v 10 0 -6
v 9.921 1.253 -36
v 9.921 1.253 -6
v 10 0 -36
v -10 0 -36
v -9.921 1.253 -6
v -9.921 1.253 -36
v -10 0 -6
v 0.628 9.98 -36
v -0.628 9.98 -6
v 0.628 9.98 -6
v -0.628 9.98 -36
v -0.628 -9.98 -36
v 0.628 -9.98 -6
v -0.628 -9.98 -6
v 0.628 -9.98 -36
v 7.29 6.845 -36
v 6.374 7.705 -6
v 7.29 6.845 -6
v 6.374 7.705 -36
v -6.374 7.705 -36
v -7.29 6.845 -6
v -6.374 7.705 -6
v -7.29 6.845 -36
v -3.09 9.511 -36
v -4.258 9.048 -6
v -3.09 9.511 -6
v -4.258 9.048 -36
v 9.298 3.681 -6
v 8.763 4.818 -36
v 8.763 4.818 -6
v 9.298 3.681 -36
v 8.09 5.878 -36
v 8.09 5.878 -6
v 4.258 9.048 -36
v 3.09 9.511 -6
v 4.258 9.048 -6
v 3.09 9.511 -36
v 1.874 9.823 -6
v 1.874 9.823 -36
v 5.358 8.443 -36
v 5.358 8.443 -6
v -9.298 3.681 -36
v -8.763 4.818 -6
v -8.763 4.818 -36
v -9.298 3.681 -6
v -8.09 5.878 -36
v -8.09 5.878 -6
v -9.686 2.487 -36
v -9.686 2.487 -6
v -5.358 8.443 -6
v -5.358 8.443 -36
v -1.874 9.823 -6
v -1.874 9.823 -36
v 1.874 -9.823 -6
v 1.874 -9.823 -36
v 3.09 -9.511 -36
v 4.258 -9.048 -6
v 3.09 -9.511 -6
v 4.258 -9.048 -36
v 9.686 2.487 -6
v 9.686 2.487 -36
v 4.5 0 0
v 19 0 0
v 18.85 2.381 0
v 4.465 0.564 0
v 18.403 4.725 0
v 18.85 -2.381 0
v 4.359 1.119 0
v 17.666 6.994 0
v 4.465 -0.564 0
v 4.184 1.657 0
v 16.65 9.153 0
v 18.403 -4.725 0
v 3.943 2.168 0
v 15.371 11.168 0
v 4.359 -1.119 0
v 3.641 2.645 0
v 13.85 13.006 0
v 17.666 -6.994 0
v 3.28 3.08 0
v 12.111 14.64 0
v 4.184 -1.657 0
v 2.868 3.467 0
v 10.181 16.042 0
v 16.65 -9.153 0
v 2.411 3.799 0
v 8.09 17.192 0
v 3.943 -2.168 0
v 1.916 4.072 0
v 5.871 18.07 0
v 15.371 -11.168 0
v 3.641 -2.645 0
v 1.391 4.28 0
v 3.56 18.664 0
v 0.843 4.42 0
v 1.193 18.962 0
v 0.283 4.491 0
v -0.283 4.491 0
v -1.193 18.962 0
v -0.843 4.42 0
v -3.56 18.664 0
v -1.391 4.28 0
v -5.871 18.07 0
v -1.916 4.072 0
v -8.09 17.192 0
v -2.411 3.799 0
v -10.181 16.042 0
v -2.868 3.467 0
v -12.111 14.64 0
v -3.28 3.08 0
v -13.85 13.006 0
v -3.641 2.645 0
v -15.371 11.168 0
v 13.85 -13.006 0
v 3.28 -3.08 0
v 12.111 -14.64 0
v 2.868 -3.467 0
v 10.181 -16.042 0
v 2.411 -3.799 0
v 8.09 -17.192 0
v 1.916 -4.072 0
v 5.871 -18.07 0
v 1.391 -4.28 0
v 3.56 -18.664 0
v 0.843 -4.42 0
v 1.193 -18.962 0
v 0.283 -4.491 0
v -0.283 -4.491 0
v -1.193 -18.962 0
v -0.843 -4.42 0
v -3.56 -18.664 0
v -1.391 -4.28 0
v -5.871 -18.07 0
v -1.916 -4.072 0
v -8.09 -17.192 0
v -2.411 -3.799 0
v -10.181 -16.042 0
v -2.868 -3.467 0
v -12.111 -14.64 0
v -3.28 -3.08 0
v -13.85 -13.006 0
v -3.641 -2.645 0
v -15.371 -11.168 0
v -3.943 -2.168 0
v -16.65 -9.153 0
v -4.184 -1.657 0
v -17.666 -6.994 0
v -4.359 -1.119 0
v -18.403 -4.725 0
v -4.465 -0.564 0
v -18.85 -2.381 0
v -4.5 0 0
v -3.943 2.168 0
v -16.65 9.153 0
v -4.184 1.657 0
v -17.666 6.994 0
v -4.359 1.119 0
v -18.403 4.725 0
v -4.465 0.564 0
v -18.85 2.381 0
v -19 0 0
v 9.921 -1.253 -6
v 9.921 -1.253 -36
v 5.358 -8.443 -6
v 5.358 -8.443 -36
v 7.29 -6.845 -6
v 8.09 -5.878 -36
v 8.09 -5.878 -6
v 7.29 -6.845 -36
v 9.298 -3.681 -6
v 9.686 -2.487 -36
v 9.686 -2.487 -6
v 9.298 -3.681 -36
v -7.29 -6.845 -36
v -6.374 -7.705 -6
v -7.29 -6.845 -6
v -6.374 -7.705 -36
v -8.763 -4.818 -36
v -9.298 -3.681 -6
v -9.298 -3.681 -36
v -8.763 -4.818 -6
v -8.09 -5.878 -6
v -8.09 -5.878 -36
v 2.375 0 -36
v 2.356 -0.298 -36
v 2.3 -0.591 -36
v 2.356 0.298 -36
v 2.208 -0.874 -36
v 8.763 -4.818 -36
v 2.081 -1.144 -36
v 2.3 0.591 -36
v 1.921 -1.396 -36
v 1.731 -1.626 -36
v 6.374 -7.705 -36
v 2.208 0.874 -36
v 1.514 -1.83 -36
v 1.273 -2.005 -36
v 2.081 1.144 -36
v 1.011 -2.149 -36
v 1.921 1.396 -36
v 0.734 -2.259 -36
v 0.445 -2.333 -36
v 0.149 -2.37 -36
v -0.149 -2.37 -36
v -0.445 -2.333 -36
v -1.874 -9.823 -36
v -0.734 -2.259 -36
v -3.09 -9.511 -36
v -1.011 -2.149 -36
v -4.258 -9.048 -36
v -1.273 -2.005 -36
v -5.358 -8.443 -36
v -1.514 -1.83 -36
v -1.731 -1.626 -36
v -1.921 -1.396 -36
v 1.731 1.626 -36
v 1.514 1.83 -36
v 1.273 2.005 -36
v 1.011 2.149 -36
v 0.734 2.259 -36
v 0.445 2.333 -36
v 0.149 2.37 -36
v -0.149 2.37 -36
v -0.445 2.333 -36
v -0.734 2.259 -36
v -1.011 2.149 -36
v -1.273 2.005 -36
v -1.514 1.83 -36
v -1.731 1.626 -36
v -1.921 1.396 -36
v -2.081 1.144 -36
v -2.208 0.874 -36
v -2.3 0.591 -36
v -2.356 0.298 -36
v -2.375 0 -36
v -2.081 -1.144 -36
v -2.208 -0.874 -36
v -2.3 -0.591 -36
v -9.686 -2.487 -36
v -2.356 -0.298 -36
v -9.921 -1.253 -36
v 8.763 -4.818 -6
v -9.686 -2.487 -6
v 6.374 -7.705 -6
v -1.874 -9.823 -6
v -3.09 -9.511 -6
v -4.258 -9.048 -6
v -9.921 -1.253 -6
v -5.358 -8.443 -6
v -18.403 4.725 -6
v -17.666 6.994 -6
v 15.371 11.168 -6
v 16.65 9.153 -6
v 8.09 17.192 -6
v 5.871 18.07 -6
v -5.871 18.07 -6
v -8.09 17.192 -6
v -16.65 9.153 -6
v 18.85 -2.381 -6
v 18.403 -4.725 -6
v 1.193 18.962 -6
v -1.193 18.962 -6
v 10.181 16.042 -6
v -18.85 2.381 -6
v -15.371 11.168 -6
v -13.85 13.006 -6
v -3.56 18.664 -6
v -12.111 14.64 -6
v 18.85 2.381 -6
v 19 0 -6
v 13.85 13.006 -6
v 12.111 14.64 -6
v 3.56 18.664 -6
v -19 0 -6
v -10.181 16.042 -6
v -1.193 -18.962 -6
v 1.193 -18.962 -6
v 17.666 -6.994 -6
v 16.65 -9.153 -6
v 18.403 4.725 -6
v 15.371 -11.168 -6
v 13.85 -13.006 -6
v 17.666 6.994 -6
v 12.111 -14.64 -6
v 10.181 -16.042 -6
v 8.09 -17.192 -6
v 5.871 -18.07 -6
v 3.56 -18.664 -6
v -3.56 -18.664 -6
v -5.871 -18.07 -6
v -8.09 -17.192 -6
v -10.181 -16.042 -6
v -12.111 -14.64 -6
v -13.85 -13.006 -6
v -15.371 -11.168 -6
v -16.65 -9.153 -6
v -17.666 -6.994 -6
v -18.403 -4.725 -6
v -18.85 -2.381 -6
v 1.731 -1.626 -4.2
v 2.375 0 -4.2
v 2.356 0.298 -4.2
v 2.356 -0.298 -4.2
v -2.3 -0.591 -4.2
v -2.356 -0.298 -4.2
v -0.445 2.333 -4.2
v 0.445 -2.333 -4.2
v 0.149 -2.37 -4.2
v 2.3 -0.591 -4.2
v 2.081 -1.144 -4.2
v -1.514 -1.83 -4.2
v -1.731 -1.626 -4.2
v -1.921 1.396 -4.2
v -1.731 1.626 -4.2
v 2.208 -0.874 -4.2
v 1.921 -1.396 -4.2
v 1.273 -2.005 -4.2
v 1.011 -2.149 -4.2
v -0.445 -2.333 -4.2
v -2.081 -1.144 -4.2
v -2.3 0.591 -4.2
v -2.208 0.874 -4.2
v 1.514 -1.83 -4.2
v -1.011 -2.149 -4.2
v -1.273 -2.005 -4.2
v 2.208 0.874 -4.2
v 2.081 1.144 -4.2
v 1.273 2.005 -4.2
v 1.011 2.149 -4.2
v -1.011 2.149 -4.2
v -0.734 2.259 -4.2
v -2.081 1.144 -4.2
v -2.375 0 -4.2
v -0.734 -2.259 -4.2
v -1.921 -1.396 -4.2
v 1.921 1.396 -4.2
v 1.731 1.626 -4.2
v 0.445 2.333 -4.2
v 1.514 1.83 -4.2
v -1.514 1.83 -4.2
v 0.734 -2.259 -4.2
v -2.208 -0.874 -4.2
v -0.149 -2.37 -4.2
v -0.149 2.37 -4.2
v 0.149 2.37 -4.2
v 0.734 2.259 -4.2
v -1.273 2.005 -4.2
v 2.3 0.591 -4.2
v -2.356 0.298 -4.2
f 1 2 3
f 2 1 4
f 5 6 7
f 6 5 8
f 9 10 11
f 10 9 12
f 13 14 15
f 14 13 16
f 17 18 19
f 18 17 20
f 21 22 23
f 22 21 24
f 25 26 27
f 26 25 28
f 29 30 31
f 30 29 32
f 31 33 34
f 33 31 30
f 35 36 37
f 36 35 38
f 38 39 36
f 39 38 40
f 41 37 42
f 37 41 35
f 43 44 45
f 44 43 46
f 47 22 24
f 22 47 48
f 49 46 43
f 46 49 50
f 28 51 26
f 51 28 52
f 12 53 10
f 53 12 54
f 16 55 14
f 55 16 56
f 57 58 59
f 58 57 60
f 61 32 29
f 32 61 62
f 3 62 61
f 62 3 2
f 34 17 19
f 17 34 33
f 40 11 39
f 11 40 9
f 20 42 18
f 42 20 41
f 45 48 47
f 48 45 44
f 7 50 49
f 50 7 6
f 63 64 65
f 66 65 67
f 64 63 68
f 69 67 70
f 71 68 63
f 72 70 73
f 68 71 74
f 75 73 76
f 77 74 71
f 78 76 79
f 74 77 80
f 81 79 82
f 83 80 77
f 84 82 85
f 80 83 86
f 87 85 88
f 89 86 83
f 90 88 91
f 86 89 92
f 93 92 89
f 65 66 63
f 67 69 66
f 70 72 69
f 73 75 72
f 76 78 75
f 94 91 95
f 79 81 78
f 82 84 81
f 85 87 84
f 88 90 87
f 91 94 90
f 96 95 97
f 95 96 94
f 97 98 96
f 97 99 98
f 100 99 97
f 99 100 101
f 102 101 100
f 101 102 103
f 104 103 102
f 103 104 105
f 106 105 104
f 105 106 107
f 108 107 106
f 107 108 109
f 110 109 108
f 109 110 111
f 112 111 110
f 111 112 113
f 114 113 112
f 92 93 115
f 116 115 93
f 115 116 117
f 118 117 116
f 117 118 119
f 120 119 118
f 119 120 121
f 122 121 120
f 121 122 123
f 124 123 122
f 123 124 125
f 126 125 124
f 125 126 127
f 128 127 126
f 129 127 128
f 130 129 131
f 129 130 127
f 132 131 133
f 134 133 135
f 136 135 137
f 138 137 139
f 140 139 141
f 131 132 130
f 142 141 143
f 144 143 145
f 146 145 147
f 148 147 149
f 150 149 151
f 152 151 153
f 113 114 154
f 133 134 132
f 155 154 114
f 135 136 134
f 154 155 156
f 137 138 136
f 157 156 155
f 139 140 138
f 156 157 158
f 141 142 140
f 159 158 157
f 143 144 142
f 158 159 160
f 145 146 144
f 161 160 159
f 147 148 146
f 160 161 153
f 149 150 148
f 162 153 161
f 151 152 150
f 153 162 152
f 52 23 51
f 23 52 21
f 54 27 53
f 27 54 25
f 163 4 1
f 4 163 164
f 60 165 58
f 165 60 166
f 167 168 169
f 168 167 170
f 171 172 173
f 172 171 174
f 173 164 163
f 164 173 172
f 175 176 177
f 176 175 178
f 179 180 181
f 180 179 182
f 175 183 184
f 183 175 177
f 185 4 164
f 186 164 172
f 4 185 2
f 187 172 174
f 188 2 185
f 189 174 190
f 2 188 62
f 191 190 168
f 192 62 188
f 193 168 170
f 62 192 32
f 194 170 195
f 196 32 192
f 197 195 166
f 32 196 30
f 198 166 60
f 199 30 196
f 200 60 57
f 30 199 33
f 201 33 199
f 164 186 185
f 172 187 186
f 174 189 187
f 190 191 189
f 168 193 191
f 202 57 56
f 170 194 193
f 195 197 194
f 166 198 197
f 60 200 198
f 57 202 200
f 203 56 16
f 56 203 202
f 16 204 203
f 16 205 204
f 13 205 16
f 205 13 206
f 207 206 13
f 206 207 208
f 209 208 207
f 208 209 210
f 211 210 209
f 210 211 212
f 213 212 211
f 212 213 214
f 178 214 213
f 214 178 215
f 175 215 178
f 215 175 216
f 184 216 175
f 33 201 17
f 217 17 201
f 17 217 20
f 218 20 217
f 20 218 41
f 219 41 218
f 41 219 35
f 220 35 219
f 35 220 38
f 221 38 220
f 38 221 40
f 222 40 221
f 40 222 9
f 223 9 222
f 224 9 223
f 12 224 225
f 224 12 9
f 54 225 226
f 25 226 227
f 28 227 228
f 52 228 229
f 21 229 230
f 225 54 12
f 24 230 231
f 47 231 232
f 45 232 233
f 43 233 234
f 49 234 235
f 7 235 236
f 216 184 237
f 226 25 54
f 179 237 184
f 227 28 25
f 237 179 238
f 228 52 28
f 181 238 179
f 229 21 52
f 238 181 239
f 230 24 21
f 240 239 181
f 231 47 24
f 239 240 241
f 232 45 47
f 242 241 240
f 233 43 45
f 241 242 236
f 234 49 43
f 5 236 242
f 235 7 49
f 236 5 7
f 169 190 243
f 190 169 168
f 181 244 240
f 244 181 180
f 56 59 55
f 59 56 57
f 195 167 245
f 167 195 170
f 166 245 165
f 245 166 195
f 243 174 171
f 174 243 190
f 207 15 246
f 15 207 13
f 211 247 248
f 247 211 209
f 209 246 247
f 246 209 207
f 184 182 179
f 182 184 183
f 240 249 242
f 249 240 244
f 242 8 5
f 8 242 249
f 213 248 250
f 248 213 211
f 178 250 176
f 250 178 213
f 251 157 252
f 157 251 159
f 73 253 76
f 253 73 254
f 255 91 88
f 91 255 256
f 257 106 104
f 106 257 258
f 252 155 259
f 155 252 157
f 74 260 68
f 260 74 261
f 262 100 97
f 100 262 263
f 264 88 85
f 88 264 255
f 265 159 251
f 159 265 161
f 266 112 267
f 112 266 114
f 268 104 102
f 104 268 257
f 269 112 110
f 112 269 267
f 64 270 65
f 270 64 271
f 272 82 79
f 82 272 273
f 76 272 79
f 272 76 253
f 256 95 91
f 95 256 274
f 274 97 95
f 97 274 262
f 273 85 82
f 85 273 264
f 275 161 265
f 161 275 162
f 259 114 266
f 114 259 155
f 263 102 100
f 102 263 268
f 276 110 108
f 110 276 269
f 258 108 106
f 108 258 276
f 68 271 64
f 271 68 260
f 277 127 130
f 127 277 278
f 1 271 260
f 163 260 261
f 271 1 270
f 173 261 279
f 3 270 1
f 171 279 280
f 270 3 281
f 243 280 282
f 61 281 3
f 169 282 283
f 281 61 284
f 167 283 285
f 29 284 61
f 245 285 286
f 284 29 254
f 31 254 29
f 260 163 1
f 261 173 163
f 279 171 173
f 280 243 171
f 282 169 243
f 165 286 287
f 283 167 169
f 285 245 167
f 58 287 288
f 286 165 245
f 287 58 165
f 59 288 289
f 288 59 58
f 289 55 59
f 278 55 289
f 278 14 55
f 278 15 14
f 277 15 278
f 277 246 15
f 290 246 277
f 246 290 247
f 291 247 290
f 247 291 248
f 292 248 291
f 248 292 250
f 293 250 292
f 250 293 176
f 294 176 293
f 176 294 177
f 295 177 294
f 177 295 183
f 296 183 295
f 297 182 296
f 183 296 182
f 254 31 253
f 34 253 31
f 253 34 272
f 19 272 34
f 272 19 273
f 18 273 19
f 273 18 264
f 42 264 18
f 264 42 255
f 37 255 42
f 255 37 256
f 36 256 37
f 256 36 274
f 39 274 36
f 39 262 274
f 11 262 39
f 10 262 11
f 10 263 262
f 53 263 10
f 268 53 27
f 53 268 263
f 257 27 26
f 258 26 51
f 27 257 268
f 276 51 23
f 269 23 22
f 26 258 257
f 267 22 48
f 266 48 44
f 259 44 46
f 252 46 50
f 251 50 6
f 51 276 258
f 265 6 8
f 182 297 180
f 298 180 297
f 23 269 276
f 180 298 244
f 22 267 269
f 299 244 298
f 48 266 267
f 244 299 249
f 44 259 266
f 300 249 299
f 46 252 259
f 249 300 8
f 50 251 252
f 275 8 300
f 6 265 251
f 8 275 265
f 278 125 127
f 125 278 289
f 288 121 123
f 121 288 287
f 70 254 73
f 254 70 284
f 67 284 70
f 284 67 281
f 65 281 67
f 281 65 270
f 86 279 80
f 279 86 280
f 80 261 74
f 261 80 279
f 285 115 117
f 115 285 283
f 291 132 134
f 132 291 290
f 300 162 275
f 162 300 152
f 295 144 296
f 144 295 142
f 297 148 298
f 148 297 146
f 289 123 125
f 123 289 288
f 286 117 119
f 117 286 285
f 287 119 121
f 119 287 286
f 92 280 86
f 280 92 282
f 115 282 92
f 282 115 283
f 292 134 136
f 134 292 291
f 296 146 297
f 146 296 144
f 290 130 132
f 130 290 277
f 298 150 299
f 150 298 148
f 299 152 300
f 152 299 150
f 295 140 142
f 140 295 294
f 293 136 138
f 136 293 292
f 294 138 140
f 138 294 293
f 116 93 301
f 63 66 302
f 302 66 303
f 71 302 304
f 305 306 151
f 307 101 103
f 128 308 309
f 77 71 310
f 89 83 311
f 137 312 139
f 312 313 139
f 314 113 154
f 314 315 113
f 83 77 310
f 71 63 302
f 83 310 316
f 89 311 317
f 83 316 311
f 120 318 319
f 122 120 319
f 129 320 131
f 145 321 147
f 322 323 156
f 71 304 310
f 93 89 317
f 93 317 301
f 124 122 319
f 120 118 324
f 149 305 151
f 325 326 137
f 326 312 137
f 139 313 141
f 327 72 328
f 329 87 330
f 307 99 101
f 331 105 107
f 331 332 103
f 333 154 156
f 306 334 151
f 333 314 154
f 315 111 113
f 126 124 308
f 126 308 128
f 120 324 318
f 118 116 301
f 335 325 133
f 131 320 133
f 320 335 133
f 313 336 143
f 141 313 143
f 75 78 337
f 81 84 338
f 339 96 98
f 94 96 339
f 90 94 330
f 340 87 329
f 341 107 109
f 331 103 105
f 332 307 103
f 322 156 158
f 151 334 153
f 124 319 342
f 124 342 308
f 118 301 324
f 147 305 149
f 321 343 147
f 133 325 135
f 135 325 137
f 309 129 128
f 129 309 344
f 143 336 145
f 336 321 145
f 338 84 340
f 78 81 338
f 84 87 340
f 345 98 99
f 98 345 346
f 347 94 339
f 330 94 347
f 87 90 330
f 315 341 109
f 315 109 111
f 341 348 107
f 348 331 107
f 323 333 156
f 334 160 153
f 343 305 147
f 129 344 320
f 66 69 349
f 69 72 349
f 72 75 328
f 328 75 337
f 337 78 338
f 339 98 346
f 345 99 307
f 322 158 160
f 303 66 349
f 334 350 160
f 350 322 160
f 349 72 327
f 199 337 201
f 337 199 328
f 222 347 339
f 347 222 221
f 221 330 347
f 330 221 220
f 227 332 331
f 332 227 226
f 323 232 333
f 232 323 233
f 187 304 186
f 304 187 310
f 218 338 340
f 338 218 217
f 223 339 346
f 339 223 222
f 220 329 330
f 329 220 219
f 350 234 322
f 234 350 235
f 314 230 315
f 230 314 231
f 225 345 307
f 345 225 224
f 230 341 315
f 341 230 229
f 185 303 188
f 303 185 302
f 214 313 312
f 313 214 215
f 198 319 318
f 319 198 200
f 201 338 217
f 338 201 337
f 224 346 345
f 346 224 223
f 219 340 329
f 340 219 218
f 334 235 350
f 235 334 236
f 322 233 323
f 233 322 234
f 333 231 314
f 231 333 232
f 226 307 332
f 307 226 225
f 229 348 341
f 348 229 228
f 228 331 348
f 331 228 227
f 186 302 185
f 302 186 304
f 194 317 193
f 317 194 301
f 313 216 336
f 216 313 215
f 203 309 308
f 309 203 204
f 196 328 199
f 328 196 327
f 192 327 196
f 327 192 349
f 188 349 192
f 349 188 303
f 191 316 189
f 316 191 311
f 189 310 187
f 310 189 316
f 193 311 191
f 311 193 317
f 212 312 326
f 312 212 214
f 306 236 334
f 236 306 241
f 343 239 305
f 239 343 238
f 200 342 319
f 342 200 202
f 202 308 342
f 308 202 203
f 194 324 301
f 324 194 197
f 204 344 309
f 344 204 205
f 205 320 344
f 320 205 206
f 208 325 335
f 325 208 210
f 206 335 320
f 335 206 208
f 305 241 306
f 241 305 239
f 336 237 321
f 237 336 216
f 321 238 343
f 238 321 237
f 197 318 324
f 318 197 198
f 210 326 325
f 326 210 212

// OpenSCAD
$fn = 50;


difference() {
	union() {
		translate(v = [0, 0, -36.0000000000]) {
			cylinder(h = 36, r = 10.0000000000);
		}
		translate(v = [0, 0, -6.0000000000]) {
			cylinder(h = 6, r = 19.0000000000);
		}
	}
	union() {
		translate(v = [0, 0, 0]) {
			rotate(a = [0, 0, 0]) {
				difference() {
					union() {
						#translate(v = [0, 0, -36.0000000000]) {
							cylinder(h = 36, r = 2.2500000000);
						}
						#translate(v = [0, 0, -4.2000000000]) {
							cylinder(h = 4.2000000000, r = 10.0000000000, r1 = 2.3750000000, r2 = 4.5000000000);
						}
						#translate(v = [0, 0, -36.0000000000]) {
							cylinder(h = 36, r = 2.3750000000);
						}
						#translate(v = [0, 0, -36.0000000000]) {
							cylinder(h = 36, r = 2.2500000000);
						}
					}
					union();
				}
			}
		}
	}
}
